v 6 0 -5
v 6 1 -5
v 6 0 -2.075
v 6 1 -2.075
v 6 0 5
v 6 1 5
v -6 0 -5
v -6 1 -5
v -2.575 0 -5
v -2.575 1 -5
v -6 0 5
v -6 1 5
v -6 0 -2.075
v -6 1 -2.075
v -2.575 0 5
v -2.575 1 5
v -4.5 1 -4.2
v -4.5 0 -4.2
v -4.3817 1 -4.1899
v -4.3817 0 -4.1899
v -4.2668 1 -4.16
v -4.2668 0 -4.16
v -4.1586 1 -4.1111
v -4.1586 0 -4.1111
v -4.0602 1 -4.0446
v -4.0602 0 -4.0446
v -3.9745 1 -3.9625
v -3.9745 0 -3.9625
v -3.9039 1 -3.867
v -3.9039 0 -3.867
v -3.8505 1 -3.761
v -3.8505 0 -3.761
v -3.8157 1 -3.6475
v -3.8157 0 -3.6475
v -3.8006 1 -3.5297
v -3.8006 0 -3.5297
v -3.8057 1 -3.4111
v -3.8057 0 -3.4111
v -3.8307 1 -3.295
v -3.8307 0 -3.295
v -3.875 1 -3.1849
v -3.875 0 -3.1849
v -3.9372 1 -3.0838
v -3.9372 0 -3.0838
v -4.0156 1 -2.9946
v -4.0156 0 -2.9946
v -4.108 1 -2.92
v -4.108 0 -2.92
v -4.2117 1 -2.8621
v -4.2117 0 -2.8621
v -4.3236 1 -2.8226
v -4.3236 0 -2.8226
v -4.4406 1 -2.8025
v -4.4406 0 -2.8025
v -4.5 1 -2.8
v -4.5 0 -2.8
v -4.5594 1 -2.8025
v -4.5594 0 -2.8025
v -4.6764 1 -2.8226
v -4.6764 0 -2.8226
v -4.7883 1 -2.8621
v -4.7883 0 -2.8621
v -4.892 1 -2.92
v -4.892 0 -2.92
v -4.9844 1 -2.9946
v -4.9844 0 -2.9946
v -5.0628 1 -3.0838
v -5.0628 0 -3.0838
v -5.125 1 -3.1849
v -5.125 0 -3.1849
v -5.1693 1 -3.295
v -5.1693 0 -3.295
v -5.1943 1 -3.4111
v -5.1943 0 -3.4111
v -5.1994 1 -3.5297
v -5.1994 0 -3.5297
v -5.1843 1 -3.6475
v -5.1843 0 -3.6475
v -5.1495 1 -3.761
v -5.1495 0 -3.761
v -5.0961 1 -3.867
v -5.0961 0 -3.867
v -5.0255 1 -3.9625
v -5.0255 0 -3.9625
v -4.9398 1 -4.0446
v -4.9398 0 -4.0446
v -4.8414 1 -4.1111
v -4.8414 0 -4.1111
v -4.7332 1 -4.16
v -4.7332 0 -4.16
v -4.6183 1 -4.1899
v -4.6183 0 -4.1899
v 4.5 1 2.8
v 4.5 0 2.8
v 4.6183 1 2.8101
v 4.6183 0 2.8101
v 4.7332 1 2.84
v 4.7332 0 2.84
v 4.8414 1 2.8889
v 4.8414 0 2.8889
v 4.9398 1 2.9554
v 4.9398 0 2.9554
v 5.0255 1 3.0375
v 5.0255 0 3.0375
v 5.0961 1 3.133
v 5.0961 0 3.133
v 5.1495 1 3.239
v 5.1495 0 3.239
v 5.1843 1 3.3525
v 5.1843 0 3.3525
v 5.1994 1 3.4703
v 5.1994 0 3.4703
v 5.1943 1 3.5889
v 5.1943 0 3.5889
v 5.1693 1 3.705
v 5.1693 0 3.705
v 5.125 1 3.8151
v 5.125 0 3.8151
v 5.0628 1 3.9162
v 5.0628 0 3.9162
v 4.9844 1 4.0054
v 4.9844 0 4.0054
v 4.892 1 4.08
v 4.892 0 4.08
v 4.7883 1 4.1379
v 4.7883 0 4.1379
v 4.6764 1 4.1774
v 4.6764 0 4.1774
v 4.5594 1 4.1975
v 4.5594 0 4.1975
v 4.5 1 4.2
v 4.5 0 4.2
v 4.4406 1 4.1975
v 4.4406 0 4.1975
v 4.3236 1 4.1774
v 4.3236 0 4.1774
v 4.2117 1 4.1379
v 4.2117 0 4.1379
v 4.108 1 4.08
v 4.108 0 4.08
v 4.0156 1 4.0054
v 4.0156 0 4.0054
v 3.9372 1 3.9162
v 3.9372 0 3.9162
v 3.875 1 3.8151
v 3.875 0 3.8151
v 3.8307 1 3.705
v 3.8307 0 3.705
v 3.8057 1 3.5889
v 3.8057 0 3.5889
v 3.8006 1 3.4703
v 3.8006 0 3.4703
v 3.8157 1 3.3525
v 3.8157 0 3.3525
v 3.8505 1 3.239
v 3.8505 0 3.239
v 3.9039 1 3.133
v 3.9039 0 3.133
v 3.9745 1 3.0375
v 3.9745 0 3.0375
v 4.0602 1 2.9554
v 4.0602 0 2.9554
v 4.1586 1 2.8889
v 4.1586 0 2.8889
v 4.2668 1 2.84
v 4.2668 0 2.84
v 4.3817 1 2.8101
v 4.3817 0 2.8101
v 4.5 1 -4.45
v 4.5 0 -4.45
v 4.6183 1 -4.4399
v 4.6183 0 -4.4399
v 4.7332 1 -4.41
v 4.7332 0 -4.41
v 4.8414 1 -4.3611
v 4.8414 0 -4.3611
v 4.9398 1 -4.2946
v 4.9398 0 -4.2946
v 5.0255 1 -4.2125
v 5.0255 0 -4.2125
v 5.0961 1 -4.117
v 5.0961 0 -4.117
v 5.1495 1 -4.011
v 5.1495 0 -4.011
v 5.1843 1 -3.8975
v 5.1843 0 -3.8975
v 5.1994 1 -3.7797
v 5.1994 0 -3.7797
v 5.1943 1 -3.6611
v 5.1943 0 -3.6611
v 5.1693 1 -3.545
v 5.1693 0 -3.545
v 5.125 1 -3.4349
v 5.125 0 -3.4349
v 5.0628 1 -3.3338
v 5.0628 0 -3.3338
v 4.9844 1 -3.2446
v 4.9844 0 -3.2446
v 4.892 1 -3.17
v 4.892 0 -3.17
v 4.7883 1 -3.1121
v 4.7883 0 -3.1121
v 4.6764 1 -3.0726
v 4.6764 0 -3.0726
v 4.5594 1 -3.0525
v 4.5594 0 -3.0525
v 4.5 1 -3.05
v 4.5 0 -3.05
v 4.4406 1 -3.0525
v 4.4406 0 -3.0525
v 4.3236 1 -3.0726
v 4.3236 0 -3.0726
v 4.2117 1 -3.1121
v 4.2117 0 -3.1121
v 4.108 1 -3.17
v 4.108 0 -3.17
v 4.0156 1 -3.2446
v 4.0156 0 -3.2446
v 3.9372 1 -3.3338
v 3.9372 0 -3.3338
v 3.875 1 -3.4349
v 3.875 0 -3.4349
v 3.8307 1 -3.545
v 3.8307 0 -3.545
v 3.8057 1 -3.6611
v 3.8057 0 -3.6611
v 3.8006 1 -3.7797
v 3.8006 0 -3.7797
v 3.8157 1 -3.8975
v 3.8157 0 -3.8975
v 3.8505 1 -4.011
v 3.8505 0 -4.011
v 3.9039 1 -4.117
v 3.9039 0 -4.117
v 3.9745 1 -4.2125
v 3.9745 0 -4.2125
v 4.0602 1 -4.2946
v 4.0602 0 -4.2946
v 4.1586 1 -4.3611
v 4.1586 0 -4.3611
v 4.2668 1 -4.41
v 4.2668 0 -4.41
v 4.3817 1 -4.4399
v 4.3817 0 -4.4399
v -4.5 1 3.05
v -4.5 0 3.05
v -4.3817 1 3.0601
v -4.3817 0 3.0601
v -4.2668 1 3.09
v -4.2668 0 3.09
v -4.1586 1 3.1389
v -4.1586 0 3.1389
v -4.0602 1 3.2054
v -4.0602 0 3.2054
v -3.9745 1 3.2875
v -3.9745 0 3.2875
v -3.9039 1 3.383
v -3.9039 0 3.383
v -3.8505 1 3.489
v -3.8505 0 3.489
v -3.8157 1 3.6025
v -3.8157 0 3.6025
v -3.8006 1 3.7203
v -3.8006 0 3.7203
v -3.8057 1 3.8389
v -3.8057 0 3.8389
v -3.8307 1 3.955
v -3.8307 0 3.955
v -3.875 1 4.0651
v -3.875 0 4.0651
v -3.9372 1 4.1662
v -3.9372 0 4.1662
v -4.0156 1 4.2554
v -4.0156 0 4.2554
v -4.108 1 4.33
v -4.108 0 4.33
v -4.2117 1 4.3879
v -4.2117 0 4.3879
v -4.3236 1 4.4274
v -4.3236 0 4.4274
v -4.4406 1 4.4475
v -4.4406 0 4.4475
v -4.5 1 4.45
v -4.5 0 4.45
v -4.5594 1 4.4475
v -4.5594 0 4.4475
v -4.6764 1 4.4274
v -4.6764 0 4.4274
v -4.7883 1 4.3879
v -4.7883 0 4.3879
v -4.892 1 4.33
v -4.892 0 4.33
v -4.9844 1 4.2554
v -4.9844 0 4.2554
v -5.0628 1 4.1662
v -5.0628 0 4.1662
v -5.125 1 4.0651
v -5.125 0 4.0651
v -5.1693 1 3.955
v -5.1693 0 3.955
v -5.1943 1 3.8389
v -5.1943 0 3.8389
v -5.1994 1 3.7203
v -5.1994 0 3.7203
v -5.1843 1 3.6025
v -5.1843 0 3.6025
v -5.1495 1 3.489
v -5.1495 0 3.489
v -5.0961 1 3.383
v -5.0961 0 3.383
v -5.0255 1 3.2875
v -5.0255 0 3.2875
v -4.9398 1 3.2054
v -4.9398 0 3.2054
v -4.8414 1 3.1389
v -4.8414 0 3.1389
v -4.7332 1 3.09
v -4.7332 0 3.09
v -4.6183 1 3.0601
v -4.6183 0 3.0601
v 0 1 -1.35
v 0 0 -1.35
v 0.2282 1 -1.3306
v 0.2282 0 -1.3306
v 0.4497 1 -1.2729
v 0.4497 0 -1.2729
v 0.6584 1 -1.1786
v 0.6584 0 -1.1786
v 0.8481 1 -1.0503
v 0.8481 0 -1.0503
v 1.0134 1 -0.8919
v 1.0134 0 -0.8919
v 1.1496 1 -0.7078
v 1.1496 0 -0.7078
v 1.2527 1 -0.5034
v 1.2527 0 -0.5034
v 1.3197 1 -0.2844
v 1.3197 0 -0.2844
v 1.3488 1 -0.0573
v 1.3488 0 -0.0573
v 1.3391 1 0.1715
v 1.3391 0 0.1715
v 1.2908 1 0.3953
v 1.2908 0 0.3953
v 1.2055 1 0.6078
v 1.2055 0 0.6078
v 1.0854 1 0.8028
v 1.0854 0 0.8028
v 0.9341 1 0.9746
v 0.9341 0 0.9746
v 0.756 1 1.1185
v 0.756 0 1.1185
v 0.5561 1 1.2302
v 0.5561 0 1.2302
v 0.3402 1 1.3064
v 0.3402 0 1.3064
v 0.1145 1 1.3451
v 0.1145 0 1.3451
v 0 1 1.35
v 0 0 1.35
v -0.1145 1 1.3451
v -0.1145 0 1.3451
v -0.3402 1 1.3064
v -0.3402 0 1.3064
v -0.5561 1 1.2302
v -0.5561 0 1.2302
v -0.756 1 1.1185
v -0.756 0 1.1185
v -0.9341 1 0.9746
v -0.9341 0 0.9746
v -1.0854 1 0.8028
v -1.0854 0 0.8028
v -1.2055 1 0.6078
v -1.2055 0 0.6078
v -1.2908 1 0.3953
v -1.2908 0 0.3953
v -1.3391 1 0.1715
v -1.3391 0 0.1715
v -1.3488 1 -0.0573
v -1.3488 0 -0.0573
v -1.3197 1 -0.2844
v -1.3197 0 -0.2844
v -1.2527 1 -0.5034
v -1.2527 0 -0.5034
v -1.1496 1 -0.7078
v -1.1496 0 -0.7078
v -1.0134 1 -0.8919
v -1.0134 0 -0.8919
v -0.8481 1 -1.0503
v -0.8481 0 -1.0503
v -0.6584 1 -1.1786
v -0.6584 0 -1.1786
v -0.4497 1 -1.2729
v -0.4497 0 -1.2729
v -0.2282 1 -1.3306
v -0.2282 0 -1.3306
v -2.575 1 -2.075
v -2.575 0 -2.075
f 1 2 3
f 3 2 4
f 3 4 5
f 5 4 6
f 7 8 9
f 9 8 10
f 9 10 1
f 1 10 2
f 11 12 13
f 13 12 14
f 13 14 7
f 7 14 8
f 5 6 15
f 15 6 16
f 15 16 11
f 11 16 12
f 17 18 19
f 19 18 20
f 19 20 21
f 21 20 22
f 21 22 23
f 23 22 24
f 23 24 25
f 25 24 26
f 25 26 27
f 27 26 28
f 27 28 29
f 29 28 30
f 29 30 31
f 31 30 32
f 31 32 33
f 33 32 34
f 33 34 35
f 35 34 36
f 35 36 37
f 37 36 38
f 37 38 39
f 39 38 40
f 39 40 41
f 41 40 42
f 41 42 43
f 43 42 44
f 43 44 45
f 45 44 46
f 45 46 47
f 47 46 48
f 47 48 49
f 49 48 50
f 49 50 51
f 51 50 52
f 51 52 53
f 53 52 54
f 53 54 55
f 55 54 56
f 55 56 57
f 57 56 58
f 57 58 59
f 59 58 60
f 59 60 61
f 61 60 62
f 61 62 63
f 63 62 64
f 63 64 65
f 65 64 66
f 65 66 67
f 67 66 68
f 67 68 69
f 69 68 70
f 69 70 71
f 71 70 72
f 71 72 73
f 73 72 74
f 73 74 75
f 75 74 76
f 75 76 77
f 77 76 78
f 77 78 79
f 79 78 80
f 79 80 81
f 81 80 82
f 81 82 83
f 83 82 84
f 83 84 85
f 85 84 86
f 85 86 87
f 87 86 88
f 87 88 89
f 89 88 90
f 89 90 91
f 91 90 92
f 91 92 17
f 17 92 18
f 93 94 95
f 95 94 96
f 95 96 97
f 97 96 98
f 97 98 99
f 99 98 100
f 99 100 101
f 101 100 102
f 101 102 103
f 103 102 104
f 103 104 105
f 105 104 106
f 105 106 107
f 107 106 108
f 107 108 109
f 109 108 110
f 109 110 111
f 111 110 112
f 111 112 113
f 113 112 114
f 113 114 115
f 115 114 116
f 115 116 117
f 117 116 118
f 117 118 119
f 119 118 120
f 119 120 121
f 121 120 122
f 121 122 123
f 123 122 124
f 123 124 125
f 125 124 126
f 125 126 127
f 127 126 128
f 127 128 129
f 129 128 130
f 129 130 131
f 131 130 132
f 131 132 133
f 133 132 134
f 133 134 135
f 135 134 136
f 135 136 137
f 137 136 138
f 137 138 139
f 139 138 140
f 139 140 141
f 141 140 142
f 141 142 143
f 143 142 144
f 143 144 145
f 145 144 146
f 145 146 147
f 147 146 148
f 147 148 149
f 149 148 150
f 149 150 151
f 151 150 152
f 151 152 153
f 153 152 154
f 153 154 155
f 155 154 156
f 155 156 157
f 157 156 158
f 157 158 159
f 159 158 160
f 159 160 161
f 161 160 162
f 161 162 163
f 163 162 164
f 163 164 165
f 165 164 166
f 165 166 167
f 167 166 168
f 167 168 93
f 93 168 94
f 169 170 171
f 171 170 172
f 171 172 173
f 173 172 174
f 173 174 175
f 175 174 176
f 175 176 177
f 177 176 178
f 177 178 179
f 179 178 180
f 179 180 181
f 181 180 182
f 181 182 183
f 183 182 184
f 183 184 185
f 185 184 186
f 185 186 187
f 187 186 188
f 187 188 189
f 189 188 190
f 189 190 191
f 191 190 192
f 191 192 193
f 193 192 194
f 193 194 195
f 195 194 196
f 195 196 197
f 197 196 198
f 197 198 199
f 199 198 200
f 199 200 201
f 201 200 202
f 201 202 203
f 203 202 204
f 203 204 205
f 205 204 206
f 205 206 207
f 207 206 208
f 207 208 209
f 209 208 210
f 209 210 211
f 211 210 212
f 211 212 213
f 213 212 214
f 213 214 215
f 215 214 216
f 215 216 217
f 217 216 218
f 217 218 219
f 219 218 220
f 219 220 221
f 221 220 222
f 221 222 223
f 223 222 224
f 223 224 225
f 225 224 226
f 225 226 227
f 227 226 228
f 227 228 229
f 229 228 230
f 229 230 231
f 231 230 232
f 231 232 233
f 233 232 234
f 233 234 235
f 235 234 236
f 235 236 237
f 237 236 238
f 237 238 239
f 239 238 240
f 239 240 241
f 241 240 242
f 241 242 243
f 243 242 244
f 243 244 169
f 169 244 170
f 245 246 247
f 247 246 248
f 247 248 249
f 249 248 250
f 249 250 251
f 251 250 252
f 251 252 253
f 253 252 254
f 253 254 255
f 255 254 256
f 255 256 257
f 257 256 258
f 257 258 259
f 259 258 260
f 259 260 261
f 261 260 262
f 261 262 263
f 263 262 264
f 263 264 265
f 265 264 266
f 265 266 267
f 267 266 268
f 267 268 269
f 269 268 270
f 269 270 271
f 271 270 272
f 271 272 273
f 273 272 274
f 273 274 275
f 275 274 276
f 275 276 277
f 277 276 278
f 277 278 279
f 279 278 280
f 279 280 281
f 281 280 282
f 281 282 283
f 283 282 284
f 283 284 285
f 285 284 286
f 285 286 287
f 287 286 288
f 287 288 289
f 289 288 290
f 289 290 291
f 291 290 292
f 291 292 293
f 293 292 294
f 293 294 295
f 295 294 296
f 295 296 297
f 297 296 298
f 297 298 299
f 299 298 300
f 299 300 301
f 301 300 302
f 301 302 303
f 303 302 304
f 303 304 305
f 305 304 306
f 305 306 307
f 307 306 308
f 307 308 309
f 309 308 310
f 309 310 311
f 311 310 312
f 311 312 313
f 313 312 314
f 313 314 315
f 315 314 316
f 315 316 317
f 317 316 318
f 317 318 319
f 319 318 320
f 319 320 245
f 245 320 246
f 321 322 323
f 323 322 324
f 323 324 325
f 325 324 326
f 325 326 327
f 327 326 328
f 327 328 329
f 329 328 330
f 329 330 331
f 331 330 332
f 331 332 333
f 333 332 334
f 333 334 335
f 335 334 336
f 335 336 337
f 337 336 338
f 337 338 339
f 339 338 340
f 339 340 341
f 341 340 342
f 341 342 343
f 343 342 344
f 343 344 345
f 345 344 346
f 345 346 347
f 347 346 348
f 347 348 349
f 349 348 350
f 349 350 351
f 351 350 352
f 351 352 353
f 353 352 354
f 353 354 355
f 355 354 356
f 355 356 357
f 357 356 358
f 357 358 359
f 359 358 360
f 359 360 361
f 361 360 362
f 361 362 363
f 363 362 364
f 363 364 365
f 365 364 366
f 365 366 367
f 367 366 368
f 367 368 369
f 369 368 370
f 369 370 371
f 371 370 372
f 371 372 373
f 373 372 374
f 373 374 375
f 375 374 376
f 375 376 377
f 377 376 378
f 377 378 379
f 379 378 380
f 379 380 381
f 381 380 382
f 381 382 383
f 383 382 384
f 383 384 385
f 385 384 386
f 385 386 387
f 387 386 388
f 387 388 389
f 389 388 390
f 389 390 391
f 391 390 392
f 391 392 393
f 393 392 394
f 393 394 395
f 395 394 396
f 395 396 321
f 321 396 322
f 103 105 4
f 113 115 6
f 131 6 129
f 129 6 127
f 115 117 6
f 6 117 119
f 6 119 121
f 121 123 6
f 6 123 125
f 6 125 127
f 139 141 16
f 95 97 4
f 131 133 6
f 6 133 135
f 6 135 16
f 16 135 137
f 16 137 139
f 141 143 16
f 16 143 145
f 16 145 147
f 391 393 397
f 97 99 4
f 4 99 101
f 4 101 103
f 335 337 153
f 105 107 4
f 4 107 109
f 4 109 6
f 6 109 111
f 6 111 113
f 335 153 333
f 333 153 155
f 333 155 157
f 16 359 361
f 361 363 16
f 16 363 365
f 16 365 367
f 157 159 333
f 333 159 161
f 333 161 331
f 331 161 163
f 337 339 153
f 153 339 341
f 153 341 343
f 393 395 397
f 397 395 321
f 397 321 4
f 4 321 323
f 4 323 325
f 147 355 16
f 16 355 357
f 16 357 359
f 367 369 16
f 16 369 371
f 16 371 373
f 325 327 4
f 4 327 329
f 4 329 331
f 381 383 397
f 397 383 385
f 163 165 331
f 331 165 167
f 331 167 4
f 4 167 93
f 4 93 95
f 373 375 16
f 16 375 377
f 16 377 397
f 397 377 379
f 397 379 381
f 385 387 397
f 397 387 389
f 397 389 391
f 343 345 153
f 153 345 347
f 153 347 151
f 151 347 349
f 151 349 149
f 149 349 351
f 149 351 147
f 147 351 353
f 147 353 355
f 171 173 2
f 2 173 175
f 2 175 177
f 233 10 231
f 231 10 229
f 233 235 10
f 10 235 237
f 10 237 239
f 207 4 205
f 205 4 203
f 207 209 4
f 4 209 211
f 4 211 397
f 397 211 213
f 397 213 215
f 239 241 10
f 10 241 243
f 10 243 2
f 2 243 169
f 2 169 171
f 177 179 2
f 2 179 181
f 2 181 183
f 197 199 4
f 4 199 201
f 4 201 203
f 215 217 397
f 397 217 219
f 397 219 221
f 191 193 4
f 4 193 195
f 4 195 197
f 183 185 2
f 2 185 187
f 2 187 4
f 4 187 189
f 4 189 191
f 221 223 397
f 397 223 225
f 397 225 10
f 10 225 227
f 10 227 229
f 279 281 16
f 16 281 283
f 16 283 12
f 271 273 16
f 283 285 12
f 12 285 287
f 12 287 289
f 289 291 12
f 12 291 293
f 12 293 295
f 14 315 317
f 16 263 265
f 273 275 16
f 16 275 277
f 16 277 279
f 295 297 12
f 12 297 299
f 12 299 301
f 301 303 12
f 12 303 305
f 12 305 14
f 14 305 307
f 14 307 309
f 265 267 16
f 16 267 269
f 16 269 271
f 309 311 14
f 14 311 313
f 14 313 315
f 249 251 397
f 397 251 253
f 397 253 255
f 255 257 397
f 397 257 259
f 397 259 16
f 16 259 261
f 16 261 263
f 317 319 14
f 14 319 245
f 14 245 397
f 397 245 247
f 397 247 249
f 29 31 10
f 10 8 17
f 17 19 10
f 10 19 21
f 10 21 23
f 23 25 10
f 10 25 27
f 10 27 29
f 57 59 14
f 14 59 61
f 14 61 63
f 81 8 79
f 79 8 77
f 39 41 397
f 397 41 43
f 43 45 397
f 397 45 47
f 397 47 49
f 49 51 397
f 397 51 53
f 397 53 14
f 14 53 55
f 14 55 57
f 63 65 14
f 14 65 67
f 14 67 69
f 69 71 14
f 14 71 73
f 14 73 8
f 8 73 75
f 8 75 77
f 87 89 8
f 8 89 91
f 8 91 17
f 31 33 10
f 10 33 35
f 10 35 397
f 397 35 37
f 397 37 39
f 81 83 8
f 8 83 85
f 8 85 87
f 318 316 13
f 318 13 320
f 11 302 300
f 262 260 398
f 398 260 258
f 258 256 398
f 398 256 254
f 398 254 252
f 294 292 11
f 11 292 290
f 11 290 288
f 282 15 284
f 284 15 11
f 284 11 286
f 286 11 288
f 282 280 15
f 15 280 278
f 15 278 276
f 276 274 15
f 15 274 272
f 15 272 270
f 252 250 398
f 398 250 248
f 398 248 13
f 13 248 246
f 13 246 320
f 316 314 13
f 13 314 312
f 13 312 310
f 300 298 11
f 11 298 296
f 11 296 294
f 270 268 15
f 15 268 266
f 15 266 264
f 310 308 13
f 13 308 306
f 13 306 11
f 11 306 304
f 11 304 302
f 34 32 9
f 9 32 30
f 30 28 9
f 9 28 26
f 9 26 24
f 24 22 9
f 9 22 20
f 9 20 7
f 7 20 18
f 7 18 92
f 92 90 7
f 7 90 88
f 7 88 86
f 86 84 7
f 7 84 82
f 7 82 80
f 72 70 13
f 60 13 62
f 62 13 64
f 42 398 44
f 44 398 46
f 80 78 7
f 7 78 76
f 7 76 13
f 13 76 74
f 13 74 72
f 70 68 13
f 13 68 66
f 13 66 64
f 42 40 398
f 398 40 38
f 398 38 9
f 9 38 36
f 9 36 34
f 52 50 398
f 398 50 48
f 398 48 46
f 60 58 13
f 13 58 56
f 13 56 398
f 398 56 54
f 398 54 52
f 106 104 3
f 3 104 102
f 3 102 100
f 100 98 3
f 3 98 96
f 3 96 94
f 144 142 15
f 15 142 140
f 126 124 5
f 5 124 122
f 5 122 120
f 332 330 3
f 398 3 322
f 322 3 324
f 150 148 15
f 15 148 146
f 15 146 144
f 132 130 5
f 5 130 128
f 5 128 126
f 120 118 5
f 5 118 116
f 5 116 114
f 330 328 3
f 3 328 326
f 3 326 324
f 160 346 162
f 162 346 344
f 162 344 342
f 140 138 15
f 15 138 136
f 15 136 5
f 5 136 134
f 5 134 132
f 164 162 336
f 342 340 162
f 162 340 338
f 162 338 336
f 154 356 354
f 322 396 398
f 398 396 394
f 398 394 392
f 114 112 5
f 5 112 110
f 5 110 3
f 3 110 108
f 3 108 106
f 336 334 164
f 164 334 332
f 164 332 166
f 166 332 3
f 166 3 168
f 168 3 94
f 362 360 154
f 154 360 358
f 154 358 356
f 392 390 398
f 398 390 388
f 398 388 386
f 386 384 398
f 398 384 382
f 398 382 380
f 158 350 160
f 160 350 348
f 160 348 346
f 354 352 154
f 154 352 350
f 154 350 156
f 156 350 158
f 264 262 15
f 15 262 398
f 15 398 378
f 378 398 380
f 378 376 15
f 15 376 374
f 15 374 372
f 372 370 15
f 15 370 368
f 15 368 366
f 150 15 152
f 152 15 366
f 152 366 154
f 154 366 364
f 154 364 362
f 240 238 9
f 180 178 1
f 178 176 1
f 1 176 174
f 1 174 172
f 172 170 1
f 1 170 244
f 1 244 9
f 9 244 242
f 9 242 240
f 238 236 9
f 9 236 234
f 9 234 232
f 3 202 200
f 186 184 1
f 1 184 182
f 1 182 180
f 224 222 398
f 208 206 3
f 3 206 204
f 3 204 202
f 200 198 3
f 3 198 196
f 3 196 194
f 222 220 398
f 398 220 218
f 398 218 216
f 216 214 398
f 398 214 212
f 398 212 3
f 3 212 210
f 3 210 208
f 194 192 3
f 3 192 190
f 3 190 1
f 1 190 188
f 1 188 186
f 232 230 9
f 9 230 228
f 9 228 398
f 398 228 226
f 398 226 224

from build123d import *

# Parameters (mm, degrees)
SKETCH_1_W      = 12
SKETCH_1_H      = 10
SKETCH_1_R      = 1.35
SKETCH_1_R_2    = 0.7
EXTRUDE_1_DEPTH = 1


with BuildPart() as part:
    # 草图1 → 凸台-拉伸1 (new body)
    with BuildSketch(Plane(origin=(0, 0, 0), x_dir=(1, 0, 0), z_dir=(0, 1, 0))):
        Rectangle(SKETCH_1_W, SKETCH_1_H)
        with Locations(Location((0, 0, 0), (0, 0, 270))):
            Circle(SKETCH_1_R, mode=Mode.SUBTRACT)
        with Locations(Location((-4.5, 3.5, 0), (0, 0, 270))):
            Circle(SKETCH_1_R_2, mode=Mode.SUBTRACT)
        with Locations(Location((4.5, -3.5, 0), (0, 0, 270))):
            Circle(SKETCH_1_R_2, mode=Mode.SUBTRACT)
        with Locations(Location((4.5, 3.75, 0), (0, 0, 270))):
            Circle(SKETCH_1_R_2, mode=Mode.SUBTRACT)
        with Locations(Location((-4.5, -3.75, 0), (0, 0, 270))):
            Circle(SKETCH_1_R_2, mode=Mode.SUBTRACT)
    extrude(amount=EXTRUDE_1_DEPTH)


solid = part.part
